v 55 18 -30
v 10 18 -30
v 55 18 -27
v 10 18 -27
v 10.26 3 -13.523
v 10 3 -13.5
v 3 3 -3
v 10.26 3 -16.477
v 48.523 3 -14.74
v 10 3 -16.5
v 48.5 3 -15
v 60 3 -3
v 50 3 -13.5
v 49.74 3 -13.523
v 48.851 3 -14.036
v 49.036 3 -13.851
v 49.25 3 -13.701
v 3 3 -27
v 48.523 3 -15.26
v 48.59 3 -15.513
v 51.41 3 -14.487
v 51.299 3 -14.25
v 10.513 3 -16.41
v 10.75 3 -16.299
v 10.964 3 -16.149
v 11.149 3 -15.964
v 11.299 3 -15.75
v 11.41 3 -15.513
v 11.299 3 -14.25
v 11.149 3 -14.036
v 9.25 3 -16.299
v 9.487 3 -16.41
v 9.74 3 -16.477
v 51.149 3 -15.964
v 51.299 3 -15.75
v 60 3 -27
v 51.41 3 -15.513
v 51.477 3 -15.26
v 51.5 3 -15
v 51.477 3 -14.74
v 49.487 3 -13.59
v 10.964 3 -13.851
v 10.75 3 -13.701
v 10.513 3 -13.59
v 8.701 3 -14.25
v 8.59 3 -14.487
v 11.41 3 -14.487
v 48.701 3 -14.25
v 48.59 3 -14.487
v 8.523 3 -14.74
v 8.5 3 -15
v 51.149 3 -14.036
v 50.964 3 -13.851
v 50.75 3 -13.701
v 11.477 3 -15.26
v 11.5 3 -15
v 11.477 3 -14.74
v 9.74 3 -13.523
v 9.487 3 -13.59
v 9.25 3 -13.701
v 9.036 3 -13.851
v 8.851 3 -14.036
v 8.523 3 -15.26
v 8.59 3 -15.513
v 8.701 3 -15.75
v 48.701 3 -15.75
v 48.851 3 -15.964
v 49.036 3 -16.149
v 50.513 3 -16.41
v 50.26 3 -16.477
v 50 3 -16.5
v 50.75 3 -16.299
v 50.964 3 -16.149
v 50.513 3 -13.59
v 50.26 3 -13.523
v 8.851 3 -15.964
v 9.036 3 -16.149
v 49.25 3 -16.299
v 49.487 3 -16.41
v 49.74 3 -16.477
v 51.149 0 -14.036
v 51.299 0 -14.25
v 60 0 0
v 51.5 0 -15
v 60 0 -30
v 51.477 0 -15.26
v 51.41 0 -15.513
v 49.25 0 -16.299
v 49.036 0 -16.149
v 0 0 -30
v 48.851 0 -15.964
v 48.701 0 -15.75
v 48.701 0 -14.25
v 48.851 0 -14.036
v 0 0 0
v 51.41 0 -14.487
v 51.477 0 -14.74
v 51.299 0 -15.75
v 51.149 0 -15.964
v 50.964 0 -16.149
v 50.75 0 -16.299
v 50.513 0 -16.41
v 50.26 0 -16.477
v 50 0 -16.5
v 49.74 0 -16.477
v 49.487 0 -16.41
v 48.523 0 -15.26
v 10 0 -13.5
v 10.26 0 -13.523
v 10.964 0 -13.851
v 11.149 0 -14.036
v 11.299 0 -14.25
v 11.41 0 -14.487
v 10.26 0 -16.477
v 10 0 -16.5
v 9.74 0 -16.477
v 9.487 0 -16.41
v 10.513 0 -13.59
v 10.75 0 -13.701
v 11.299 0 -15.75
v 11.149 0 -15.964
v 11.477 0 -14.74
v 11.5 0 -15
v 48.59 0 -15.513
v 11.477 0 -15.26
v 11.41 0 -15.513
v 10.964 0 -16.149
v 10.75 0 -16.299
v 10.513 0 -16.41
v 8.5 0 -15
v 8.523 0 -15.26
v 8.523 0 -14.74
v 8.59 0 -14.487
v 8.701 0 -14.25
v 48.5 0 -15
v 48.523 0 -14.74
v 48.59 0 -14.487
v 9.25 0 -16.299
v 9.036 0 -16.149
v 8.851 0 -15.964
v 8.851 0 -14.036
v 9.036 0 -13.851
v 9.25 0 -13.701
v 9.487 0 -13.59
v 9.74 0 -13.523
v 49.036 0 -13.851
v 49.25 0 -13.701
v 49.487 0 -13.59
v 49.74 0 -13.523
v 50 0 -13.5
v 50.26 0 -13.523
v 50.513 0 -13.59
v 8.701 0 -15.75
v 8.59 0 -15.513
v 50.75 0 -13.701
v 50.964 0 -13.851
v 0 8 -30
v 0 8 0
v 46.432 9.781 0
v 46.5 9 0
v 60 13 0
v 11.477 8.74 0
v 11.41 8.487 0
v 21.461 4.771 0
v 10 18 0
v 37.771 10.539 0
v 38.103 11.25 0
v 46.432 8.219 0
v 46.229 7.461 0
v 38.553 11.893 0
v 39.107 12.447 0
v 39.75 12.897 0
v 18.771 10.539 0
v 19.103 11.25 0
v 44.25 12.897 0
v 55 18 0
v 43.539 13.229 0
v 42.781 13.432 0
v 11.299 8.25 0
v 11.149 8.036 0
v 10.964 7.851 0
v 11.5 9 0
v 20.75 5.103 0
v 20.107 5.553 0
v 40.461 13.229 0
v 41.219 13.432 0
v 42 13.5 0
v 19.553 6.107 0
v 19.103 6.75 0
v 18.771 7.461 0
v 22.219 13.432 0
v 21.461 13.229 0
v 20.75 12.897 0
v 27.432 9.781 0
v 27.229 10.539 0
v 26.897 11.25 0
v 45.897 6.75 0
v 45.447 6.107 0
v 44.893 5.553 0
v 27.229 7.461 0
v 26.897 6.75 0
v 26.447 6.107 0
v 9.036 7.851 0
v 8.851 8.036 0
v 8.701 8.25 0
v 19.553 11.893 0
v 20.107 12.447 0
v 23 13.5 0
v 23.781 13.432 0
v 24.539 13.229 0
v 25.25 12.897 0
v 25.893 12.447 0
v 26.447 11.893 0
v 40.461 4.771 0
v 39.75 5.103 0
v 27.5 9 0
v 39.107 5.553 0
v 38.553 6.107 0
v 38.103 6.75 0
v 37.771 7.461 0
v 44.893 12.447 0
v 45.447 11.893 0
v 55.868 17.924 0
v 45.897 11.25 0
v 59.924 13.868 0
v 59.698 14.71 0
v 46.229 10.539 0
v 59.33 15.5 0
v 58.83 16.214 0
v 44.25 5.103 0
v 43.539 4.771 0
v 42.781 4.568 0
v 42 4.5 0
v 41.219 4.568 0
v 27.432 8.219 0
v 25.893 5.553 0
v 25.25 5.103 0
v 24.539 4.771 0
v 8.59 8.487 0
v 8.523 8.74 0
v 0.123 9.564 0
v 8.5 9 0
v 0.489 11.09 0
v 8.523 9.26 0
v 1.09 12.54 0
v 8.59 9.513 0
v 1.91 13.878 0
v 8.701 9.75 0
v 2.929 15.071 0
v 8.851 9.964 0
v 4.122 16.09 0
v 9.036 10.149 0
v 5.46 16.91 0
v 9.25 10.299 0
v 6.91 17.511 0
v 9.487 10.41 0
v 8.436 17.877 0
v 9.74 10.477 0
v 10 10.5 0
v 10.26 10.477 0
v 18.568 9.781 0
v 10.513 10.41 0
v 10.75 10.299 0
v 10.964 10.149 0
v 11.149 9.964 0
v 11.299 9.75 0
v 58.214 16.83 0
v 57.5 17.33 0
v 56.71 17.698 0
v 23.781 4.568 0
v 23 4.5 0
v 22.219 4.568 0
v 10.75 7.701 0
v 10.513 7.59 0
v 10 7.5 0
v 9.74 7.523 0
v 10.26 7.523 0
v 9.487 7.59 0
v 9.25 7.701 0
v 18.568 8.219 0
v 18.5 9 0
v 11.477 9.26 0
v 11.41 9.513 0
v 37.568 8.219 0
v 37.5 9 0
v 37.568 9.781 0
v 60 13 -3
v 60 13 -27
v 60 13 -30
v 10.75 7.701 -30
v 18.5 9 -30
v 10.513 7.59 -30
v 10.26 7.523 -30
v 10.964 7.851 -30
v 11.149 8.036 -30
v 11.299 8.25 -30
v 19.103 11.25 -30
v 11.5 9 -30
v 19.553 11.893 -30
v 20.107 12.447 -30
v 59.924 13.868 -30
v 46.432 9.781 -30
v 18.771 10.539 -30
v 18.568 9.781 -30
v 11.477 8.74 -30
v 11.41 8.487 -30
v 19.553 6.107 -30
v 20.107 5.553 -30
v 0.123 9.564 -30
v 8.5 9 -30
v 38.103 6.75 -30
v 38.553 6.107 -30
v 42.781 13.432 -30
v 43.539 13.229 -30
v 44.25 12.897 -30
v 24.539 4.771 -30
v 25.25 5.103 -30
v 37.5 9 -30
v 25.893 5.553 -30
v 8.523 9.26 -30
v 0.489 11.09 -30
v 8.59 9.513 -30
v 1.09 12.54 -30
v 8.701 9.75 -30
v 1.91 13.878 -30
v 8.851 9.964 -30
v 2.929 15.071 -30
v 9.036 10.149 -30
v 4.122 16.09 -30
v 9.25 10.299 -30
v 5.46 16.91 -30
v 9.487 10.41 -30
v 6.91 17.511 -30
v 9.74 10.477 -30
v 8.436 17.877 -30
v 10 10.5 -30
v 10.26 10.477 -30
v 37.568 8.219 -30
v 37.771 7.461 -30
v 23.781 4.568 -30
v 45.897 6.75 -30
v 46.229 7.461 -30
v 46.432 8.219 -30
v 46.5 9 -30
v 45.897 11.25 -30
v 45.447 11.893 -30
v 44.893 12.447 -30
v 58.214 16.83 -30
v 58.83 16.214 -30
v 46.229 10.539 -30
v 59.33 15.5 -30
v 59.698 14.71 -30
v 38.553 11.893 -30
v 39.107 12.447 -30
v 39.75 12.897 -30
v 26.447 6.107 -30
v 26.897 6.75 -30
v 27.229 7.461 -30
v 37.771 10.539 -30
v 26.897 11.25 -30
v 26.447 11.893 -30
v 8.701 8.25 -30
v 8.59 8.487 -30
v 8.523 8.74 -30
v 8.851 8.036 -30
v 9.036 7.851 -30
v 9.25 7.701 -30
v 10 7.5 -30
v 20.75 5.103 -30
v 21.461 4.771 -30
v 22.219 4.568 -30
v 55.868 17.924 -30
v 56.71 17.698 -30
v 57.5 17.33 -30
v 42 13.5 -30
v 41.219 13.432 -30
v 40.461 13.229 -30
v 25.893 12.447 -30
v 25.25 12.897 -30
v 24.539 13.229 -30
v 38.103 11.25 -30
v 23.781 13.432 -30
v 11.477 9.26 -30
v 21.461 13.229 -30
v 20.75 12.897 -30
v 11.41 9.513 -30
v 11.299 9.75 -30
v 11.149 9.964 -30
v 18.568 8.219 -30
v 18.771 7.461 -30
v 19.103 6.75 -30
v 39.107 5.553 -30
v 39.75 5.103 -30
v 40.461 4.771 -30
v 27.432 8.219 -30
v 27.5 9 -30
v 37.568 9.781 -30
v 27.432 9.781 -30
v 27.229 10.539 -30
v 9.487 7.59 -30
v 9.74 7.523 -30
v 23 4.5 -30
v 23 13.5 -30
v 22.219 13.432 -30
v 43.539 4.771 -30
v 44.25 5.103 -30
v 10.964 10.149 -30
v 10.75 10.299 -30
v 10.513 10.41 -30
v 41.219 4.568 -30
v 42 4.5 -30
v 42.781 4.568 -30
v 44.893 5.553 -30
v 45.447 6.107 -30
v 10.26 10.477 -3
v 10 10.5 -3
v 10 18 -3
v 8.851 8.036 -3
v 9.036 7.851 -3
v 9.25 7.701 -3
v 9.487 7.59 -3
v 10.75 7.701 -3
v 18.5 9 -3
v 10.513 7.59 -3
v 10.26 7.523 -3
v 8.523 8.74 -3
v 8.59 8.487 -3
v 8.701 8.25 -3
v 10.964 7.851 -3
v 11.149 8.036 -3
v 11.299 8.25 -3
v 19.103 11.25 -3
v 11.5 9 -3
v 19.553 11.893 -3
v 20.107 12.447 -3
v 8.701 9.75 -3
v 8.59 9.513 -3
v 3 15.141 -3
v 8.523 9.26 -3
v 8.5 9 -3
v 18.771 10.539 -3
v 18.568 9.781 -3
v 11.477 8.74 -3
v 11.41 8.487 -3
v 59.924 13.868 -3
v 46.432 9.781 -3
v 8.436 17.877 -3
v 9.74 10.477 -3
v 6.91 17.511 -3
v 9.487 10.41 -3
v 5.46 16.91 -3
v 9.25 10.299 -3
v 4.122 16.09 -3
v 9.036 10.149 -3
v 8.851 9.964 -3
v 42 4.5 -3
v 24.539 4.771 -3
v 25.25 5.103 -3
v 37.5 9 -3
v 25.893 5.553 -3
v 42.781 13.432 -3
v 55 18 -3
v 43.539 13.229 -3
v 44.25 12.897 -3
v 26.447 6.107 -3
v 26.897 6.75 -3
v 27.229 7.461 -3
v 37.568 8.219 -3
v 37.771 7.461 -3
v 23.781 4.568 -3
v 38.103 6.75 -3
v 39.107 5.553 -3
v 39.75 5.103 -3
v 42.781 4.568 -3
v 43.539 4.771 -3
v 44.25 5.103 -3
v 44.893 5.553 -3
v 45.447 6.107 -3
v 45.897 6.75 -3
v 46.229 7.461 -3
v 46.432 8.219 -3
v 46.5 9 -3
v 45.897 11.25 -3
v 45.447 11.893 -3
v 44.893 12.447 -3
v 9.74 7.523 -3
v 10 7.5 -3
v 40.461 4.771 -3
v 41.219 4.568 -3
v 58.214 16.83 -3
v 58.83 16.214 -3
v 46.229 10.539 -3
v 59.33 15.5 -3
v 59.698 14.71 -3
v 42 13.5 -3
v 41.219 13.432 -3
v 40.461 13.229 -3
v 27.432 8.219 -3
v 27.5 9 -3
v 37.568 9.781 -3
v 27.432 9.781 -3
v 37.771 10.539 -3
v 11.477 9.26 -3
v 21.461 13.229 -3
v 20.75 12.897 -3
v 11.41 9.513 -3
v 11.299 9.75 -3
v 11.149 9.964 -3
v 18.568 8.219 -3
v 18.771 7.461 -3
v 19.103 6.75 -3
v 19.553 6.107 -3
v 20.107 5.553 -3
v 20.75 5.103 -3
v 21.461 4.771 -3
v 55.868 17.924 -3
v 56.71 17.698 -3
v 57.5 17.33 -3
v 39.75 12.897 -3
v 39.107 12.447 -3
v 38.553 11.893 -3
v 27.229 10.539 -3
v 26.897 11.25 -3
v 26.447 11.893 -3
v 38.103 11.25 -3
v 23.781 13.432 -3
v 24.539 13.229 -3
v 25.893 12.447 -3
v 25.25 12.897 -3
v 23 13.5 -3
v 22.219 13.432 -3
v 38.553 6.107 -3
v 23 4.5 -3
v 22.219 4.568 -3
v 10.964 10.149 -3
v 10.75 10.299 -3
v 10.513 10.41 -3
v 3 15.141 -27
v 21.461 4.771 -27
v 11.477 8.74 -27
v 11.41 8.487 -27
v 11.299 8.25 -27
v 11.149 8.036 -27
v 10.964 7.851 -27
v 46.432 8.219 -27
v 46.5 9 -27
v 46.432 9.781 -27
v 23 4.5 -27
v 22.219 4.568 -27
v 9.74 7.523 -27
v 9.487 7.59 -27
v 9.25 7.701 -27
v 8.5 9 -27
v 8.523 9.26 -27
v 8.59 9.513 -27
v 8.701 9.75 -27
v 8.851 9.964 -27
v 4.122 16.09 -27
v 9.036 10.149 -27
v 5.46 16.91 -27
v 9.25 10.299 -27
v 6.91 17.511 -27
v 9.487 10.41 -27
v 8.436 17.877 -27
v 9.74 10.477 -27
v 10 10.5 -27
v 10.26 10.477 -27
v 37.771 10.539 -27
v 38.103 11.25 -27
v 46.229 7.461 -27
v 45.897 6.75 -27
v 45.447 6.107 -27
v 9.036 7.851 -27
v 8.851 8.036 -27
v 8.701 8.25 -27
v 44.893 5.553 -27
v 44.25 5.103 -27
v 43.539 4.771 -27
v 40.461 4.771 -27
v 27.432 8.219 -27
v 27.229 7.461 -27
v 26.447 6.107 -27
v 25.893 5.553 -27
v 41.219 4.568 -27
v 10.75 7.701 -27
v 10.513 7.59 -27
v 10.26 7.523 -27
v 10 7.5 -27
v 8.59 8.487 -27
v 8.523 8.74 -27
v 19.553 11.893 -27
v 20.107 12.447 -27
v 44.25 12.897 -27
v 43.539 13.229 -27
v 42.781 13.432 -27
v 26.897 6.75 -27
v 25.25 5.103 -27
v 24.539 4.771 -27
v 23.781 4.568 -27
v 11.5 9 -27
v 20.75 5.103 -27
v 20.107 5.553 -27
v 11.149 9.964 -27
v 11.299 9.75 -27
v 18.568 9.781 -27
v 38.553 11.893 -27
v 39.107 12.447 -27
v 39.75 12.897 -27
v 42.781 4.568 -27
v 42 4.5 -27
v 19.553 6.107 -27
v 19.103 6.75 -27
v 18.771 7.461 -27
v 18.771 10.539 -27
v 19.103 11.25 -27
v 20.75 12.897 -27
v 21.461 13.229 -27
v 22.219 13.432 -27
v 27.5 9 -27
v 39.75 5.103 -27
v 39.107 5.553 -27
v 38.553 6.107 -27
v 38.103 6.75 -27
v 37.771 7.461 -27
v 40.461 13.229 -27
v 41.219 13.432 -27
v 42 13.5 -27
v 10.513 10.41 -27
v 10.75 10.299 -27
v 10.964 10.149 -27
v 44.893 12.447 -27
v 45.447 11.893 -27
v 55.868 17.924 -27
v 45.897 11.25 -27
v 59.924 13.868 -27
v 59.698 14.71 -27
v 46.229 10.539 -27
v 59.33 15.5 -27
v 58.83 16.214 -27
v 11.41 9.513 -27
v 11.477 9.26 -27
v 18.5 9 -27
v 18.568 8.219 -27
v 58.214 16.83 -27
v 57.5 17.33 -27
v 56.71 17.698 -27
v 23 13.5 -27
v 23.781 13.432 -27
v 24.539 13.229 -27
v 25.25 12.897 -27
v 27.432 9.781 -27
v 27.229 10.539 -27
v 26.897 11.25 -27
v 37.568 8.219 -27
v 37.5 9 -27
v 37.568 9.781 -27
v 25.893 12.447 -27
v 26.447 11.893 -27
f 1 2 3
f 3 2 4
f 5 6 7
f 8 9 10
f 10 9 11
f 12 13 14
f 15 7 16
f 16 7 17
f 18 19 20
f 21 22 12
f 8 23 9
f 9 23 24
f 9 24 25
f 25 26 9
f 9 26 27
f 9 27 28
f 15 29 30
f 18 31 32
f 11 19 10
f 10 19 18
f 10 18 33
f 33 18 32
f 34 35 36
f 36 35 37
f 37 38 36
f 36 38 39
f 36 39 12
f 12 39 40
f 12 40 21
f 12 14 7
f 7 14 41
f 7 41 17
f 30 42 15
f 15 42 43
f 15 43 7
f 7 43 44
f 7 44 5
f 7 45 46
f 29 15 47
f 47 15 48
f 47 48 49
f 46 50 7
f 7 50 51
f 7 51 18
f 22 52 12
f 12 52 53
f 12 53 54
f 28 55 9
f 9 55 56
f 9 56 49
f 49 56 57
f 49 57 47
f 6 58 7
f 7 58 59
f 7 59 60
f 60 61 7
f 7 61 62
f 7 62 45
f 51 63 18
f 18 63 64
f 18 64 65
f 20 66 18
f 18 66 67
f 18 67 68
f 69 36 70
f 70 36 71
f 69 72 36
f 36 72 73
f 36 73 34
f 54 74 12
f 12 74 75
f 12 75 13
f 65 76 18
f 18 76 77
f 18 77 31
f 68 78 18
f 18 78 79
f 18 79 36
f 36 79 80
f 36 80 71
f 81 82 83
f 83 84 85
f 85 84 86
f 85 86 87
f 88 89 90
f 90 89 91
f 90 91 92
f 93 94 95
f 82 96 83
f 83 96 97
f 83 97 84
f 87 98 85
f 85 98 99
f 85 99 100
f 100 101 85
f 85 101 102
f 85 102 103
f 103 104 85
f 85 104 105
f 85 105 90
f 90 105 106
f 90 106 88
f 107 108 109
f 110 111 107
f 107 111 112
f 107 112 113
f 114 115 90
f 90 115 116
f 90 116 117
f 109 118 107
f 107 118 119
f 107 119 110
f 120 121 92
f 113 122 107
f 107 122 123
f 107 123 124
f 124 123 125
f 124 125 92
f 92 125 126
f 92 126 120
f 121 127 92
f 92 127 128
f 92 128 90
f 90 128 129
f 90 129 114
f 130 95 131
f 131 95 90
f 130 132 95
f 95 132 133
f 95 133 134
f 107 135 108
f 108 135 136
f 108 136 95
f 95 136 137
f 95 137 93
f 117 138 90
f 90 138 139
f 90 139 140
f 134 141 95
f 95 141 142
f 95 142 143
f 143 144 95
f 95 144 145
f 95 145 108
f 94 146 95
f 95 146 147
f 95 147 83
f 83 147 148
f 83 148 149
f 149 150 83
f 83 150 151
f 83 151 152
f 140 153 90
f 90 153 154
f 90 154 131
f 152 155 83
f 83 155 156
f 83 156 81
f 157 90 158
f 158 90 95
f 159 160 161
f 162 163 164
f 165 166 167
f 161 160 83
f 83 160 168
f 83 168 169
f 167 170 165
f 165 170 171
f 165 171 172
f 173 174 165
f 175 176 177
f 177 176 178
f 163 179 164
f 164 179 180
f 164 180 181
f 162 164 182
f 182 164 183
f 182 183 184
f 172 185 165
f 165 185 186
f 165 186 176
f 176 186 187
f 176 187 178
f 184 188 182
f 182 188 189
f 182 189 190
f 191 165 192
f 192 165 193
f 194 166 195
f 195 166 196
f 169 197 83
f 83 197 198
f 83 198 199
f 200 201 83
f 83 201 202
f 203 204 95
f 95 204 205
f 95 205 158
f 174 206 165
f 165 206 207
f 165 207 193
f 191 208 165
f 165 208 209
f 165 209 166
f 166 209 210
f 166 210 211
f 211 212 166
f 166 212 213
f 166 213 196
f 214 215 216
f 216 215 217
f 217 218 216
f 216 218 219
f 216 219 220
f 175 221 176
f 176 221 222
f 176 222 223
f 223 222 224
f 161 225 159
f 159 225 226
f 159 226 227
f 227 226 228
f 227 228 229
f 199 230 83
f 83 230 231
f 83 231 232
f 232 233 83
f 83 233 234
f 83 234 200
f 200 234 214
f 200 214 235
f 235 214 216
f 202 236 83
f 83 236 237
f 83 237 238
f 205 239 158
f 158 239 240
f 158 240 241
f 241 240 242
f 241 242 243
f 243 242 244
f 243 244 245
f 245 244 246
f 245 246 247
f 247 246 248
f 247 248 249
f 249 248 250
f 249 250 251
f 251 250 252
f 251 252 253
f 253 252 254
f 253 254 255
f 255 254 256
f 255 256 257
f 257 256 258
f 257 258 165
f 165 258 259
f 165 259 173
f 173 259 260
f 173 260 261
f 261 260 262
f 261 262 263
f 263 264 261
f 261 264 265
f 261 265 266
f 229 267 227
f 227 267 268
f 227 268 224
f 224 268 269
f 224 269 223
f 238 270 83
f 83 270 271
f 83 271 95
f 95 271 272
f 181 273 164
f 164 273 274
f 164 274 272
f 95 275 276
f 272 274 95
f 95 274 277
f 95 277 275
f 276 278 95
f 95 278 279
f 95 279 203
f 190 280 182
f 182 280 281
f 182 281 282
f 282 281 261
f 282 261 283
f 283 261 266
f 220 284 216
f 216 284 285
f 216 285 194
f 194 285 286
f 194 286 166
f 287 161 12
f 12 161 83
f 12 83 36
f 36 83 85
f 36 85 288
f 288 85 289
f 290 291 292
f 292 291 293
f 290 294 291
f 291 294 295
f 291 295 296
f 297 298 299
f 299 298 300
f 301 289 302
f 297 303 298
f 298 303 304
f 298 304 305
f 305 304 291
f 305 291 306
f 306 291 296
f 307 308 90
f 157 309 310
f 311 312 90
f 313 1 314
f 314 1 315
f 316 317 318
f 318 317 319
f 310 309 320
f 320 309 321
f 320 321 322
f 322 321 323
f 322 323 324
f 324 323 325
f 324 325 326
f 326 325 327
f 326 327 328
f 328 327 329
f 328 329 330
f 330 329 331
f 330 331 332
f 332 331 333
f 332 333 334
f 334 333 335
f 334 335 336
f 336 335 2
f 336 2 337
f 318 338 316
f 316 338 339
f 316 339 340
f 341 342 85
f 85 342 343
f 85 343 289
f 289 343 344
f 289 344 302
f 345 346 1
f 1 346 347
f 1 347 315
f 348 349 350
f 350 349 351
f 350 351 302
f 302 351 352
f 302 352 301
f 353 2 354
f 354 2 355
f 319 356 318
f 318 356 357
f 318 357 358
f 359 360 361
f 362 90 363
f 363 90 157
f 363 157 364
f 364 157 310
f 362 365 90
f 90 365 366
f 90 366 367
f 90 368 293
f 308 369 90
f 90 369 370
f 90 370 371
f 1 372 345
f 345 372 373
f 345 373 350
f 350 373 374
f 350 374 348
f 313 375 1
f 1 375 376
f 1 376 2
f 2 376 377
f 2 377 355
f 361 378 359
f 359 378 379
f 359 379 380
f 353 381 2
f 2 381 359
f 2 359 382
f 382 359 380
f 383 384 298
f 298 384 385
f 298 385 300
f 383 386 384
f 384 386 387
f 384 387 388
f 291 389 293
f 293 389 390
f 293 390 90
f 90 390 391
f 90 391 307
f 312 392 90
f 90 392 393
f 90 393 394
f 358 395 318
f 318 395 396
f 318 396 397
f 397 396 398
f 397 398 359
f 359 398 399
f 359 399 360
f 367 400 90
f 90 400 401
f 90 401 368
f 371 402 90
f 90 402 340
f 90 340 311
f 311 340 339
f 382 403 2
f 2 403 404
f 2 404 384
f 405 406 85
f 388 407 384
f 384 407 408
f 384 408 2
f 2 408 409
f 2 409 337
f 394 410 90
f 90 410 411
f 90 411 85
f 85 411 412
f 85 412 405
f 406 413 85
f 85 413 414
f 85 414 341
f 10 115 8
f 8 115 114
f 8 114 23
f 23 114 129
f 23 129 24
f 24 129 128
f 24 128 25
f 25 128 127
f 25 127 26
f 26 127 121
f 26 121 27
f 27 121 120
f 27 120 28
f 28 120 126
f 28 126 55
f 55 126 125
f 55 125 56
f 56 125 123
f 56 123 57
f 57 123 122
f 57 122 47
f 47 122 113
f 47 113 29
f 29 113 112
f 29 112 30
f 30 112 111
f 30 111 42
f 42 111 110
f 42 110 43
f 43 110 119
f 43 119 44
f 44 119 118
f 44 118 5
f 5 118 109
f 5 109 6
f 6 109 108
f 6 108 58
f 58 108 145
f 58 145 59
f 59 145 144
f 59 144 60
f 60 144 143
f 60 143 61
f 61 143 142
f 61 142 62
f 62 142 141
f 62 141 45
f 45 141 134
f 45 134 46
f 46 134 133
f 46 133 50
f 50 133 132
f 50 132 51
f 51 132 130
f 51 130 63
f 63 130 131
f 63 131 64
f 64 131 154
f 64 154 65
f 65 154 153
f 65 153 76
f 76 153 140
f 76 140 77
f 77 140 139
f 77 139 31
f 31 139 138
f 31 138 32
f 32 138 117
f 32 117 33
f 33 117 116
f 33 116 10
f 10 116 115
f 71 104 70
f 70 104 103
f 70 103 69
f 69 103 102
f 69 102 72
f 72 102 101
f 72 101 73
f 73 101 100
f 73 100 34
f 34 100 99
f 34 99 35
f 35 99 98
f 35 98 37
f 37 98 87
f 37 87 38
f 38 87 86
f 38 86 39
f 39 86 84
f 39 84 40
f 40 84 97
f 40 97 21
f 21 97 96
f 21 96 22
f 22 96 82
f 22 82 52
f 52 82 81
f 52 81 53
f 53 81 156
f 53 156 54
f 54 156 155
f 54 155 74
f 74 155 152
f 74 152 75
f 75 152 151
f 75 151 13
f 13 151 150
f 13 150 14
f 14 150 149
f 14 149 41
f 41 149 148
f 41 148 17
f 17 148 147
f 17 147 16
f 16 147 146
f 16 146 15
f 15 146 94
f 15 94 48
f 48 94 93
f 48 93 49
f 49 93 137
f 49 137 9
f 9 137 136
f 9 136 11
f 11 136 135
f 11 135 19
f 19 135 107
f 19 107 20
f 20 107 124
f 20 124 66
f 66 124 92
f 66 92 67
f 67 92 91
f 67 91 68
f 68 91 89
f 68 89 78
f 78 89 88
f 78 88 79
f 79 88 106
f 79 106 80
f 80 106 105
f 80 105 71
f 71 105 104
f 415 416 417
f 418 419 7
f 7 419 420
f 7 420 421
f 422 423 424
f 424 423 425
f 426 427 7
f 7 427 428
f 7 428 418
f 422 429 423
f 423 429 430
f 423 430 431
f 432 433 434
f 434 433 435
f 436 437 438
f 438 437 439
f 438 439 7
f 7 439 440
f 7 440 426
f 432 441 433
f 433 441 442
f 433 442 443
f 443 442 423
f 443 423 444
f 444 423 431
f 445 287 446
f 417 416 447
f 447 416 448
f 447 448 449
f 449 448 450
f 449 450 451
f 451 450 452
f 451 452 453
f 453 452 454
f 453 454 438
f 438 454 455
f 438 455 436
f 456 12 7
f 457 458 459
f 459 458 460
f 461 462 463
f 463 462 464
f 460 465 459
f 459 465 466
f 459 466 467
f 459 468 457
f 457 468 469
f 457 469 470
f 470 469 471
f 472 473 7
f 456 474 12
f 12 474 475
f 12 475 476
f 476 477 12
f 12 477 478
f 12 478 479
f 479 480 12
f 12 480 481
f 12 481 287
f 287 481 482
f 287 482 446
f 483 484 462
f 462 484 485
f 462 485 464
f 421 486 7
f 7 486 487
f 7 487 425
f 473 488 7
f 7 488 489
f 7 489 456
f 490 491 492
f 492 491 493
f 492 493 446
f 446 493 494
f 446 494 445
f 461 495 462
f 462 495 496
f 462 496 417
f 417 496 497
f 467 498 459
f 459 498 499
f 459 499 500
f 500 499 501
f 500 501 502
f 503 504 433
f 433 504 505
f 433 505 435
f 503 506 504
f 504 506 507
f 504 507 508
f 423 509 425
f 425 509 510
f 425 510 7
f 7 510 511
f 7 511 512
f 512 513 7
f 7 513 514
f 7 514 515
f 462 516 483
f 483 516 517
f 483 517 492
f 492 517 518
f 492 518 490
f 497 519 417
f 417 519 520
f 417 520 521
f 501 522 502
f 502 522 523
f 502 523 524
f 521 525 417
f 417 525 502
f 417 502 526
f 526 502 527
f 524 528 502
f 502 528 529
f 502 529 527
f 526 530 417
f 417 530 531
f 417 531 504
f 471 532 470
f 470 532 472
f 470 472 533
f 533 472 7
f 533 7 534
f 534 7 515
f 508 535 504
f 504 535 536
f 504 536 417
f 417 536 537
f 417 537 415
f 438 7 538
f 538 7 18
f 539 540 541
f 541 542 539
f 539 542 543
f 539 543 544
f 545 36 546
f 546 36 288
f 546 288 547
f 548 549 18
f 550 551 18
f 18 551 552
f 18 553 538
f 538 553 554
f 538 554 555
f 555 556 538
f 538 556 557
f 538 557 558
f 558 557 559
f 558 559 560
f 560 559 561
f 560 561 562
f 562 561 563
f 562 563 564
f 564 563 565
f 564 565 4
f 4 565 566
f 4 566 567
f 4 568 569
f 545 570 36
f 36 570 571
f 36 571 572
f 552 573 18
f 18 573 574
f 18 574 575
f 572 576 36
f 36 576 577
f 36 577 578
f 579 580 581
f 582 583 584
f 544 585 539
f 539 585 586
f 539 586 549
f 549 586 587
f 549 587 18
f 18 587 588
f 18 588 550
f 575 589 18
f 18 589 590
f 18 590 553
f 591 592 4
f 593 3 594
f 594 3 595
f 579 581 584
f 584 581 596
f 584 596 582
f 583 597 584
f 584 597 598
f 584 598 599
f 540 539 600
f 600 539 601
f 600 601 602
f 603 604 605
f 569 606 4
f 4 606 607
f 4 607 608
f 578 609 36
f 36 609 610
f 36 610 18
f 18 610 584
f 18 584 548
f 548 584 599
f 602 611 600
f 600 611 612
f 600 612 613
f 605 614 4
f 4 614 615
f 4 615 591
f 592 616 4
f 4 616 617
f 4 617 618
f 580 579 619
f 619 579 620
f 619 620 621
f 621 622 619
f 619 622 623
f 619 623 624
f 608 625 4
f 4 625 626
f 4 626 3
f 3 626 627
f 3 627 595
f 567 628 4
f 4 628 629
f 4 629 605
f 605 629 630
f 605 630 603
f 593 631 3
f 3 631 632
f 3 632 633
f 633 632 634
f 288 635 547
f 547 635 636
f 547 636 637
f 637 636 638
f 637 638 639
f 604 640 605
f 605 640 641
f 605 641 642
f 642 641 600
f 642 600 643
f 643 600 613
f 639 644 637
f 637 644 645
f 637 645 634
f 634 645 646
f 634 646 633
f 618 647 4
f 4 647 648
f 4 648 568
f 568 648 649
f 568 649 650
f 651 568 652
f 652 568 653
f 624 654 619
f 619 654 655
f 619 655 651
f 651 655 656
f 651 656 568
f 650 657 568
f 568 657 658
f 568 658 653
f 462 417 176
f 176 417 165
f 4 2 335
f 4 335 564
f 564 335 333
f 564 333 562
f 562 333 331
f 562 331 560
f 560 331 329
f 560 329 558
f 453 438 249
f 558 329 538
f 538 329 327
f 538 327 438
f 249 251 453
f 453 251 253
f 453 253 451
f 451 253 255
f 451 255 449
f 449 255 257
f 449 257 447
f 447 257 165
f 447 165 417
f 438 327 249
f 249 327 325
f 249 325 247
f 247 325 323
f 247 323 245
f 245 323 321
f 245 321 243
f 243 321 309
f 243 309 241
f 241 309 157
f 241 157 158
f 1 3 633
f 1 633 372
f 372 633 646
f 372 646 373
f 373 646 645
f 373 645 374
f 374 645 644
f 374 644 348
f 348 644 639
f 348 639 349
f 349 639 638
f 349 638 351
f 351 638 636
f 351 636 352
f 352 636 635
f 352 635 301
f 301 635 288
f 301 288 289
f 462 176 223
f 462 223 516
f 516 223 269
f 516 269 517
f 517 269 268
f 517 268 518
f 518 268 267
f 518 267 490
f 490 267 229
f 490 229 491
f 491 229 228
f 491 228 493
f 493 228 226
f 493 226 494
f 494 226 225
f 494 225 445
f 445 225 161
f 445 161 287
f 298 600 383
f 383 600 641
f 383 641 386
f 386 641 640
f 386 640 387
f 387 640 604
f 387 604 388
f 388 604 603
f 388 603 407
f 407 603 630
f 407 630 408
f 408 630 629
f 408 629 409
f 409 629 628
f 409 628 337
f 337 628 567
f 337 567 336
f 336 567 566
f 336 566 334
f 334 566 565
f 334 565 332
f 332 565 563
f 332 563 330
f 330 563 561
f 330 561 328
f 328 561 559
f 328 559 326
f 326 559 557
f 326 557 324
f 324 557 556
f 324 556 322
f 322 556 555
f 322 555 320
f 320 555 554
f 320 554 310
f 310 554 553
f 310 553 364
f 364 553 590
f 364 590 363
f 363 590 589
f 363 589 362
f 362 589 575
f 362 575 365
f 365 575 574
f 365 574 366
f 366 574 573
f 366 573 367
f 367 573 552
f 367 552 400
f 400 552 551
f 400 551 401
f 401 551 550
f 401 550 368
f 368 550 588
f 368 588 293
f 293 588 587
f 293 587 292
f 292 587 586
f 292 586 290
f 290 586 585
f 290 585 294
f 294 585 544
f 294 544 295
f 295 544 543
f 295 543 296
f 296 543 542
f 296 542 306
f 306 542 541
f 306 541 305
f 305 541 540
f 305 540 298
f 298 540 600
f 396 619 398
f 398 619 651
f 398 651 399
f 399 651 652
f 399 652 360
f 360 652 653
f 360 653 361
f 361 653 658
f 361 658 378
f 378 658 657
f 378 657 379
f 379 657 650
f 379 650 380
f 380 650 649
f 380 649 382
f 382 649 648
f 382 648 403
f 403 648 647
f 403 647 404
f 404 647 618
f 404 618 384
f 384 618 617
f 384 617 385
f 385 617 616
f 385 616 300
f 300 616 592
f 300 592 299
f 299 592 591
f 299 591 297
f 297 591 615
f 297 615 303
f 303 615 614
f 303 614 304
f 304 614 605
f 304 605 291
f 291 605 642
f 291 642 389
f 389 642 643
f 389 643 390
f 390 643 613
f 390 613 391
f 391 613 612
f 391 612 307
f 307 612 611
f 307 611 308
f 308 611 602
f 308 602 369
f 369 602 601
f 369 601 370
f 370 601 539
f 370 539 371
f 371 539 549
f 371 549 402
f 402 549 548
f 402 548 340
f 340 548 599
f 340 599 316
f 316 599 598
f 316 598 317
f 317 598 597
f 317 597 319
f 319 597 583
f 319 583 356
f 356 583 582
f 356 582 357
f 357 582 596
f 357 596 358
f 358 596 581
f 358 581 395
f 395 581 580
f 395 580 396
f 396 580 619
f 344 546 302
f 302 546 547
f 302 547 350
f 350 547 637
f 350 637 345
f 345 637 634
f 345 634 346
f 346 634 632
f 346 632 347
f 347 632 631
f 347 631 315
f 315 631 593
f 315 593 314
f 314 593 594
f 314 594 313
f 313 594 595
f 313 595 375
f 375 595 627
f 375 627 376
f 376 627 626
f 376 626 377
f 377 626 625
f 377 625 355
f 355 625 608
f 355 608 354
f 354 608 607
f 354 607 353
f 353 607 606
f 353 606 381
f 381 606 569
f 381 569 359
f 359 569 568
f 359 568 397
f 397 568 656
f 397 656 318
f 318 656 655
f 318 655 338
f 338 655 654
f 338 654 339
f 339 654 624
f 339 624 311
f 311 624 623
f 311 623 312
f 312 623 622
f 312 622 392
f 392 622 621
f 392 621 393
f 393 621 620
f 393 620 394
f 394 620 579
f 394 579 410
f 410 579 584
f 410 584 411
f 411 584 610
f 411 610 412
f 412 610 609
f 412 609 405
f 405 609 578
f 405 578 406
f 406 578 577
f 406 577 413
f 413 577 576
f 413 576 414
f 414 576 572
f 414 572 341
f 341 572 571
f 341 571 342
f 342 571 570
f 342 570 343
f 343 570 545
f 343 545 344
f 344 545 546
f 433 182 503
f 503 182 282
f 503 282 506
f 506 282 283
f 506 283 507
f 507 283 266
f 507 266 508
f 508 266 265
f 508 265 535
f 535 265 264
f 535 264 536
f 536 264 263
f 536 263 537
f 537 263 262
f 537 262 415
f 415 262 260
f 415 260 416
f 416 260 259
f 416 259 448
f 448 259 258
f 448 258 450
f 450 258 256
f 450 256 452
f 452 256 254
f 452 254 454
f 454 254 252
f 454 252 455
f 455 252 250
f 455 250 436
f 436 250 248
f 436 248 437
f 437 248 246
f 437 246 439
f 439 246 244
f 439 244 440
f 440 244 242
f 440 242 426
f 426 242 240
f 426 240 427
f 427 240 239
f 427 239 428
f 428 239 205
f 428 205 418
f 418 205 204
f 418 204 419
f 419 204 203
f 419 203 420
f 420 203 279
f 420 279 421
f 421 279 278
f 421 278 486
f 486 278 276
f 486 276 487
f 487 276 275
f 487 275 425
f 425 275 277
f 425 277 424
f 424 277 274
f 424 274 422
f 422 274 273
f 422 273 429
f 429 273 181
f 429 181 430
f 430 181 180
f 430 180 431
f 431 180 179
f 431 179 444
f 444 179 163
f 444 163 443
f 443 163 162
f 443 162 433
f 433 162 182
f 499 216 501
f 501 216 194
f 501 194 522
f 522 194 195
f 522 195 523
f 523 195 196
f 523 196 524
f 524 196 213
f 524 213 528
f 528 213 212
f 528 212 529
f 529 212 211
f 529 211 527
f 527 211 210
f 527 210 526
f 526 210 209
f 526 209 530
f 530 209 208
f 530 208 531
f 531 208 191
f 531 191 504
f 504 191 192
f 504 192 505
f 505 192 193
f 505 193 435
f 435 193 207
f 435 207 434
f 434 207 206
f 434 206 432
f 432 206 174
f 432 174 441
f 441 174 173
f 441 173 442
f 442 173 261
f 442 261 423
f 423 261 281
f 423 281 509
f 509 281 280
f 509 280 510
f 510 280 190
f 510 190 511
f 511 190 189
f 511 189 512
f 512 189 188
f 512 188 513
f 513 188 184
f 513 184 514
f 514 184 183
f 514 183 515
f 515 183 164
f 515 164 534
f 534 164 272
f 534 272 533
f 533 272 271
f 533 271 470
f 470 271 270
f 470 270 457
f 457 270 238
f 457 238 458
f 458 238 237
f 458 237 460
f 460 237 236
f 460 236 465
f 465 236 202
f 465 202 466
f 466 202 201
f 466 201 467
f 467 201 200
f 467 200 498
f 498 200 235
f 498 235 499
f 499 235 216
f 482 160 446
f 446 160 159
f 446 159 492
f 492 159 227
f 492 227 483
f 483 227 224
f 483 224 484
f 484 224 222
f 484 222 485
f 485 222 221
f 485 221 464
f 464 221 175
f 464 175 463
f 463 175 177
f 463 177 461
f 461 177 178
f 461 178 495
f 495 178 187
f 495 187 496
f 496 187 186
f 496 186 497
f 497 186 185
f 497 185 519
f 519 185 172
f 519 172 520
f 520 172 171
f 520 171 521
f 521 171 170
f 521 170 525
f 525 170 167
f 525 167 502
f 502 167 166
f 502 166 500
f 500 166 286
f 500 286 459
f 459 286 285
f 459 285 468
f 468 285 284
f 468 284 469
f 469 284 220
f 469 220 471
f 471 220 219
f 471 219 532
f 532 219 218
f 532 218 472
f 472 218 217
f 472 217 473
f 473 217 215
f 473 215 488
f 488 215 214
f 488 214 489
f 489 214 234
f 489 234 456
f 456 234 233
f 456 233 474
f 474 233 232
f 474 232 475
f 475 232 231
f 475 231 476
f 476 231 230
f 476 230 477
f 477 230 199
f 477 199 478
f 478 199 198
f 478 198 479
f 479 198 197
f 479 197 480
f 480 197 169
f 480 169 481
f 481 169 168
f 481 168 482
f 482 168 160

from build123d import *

# Parameters (mm, degrees)
CROQUIS1_W              = 60
CROQUIS1_H              = 30
CROQUIS1_R              = 1.5
SALIENTE_EXTRUIR1_DEPTH = 3
SALIENTE_EXTRUIR2_DEPTH = 15
REDONDEO1_R             = 10
REDONDEO2_R             = 5
CROQUIS3_R              = 4.5
CROQUIS3_R_2            = 1.5
CORTAR_EXTRUIR1_DEPTH   = 36


with BuildPart() as part:
    # Croquis1 → Saliente-Extruir1 (new body)
    with BuildSketch(Plane(origin=(0, 0, 0), x_dir=(1, 0, 0), z_dir=(0, 1, 0))):
        with Locations((30, 15)):
            Rectangle(CROQUIS1_W, CROQUIS1_H)
        with Locations(Location((10, 15, 0), (0, 0, 270))):
            Circle(CROQUIS1_R, mode=Mode.SUBTRACT)
        with Locations(Location((50, 15, 0), (0, 0, 270))):
            Circle(CROQUIS1_R, mode=Mode.SUBTRACT)
    extrude(amount=SALIENTE_EXTRUIR1_DEPTH)

    # Croquis2 → Saliente-Extruir2 (add)
    with BuildSketch(Plane(origin=(0, 3, 0), x_dir=(1, 0, 0), z_dir=(0, 1, 0))):
        Polygon((0, 30), (60, 30), (60, 27), (3, 27), (3, 3), (60, 3), (60, 0), (0, 0), align=None)
    extrude(amount=SALIENTE_EXTRUIR2_DEPTH)

    # Redondeo1
    # the kernel refuses this fillet: 10 mm, written as the material it takes off along each edge
    with BuildSketch(Plane(origin=(0, 18, 25), x_dir=(1, 0, 0), z_dir=(0, 0, -1))) as redondeo1_piece_1:
        with BuildLine():
            CenterArc((REDONDEO1_R, REDONDEO1_R), REDONDEO1_R, 180, 90)
            Line((0, REDONDEO1_R), (0, 0))
            Line((0, 0), (REDONDEO1_R, 0))
        make_face()
    extrude(amount=80, mode=Mode.SUBTRACT)

    # Redondeo2
    redondeo2_edges = [part.edges().sort_by_distance(p)[0] for p in [
        (60, 18, -1.5),
        (60, 18, -28.5),
    ]]
    fillet(redondeo2_edges, radius=REDONDEO2_R)

    # Croquis3 → Cortar-Extruir1 (cut)
    with BuildSketch(Plane.XY):
        with Locations((42, 9)):
            Circle(CROQUIS3_R)
        with Locations((23, 9)):
            Circle(CROQUIS3_R)
        with Locations((10, 9)):
            Circle(CROQUIS3_R_2)
    extrude(amount=-CORTAR_EXTRUIR1_DEPTH, mode=Mode.SUBTRACT)


solid = part.part
